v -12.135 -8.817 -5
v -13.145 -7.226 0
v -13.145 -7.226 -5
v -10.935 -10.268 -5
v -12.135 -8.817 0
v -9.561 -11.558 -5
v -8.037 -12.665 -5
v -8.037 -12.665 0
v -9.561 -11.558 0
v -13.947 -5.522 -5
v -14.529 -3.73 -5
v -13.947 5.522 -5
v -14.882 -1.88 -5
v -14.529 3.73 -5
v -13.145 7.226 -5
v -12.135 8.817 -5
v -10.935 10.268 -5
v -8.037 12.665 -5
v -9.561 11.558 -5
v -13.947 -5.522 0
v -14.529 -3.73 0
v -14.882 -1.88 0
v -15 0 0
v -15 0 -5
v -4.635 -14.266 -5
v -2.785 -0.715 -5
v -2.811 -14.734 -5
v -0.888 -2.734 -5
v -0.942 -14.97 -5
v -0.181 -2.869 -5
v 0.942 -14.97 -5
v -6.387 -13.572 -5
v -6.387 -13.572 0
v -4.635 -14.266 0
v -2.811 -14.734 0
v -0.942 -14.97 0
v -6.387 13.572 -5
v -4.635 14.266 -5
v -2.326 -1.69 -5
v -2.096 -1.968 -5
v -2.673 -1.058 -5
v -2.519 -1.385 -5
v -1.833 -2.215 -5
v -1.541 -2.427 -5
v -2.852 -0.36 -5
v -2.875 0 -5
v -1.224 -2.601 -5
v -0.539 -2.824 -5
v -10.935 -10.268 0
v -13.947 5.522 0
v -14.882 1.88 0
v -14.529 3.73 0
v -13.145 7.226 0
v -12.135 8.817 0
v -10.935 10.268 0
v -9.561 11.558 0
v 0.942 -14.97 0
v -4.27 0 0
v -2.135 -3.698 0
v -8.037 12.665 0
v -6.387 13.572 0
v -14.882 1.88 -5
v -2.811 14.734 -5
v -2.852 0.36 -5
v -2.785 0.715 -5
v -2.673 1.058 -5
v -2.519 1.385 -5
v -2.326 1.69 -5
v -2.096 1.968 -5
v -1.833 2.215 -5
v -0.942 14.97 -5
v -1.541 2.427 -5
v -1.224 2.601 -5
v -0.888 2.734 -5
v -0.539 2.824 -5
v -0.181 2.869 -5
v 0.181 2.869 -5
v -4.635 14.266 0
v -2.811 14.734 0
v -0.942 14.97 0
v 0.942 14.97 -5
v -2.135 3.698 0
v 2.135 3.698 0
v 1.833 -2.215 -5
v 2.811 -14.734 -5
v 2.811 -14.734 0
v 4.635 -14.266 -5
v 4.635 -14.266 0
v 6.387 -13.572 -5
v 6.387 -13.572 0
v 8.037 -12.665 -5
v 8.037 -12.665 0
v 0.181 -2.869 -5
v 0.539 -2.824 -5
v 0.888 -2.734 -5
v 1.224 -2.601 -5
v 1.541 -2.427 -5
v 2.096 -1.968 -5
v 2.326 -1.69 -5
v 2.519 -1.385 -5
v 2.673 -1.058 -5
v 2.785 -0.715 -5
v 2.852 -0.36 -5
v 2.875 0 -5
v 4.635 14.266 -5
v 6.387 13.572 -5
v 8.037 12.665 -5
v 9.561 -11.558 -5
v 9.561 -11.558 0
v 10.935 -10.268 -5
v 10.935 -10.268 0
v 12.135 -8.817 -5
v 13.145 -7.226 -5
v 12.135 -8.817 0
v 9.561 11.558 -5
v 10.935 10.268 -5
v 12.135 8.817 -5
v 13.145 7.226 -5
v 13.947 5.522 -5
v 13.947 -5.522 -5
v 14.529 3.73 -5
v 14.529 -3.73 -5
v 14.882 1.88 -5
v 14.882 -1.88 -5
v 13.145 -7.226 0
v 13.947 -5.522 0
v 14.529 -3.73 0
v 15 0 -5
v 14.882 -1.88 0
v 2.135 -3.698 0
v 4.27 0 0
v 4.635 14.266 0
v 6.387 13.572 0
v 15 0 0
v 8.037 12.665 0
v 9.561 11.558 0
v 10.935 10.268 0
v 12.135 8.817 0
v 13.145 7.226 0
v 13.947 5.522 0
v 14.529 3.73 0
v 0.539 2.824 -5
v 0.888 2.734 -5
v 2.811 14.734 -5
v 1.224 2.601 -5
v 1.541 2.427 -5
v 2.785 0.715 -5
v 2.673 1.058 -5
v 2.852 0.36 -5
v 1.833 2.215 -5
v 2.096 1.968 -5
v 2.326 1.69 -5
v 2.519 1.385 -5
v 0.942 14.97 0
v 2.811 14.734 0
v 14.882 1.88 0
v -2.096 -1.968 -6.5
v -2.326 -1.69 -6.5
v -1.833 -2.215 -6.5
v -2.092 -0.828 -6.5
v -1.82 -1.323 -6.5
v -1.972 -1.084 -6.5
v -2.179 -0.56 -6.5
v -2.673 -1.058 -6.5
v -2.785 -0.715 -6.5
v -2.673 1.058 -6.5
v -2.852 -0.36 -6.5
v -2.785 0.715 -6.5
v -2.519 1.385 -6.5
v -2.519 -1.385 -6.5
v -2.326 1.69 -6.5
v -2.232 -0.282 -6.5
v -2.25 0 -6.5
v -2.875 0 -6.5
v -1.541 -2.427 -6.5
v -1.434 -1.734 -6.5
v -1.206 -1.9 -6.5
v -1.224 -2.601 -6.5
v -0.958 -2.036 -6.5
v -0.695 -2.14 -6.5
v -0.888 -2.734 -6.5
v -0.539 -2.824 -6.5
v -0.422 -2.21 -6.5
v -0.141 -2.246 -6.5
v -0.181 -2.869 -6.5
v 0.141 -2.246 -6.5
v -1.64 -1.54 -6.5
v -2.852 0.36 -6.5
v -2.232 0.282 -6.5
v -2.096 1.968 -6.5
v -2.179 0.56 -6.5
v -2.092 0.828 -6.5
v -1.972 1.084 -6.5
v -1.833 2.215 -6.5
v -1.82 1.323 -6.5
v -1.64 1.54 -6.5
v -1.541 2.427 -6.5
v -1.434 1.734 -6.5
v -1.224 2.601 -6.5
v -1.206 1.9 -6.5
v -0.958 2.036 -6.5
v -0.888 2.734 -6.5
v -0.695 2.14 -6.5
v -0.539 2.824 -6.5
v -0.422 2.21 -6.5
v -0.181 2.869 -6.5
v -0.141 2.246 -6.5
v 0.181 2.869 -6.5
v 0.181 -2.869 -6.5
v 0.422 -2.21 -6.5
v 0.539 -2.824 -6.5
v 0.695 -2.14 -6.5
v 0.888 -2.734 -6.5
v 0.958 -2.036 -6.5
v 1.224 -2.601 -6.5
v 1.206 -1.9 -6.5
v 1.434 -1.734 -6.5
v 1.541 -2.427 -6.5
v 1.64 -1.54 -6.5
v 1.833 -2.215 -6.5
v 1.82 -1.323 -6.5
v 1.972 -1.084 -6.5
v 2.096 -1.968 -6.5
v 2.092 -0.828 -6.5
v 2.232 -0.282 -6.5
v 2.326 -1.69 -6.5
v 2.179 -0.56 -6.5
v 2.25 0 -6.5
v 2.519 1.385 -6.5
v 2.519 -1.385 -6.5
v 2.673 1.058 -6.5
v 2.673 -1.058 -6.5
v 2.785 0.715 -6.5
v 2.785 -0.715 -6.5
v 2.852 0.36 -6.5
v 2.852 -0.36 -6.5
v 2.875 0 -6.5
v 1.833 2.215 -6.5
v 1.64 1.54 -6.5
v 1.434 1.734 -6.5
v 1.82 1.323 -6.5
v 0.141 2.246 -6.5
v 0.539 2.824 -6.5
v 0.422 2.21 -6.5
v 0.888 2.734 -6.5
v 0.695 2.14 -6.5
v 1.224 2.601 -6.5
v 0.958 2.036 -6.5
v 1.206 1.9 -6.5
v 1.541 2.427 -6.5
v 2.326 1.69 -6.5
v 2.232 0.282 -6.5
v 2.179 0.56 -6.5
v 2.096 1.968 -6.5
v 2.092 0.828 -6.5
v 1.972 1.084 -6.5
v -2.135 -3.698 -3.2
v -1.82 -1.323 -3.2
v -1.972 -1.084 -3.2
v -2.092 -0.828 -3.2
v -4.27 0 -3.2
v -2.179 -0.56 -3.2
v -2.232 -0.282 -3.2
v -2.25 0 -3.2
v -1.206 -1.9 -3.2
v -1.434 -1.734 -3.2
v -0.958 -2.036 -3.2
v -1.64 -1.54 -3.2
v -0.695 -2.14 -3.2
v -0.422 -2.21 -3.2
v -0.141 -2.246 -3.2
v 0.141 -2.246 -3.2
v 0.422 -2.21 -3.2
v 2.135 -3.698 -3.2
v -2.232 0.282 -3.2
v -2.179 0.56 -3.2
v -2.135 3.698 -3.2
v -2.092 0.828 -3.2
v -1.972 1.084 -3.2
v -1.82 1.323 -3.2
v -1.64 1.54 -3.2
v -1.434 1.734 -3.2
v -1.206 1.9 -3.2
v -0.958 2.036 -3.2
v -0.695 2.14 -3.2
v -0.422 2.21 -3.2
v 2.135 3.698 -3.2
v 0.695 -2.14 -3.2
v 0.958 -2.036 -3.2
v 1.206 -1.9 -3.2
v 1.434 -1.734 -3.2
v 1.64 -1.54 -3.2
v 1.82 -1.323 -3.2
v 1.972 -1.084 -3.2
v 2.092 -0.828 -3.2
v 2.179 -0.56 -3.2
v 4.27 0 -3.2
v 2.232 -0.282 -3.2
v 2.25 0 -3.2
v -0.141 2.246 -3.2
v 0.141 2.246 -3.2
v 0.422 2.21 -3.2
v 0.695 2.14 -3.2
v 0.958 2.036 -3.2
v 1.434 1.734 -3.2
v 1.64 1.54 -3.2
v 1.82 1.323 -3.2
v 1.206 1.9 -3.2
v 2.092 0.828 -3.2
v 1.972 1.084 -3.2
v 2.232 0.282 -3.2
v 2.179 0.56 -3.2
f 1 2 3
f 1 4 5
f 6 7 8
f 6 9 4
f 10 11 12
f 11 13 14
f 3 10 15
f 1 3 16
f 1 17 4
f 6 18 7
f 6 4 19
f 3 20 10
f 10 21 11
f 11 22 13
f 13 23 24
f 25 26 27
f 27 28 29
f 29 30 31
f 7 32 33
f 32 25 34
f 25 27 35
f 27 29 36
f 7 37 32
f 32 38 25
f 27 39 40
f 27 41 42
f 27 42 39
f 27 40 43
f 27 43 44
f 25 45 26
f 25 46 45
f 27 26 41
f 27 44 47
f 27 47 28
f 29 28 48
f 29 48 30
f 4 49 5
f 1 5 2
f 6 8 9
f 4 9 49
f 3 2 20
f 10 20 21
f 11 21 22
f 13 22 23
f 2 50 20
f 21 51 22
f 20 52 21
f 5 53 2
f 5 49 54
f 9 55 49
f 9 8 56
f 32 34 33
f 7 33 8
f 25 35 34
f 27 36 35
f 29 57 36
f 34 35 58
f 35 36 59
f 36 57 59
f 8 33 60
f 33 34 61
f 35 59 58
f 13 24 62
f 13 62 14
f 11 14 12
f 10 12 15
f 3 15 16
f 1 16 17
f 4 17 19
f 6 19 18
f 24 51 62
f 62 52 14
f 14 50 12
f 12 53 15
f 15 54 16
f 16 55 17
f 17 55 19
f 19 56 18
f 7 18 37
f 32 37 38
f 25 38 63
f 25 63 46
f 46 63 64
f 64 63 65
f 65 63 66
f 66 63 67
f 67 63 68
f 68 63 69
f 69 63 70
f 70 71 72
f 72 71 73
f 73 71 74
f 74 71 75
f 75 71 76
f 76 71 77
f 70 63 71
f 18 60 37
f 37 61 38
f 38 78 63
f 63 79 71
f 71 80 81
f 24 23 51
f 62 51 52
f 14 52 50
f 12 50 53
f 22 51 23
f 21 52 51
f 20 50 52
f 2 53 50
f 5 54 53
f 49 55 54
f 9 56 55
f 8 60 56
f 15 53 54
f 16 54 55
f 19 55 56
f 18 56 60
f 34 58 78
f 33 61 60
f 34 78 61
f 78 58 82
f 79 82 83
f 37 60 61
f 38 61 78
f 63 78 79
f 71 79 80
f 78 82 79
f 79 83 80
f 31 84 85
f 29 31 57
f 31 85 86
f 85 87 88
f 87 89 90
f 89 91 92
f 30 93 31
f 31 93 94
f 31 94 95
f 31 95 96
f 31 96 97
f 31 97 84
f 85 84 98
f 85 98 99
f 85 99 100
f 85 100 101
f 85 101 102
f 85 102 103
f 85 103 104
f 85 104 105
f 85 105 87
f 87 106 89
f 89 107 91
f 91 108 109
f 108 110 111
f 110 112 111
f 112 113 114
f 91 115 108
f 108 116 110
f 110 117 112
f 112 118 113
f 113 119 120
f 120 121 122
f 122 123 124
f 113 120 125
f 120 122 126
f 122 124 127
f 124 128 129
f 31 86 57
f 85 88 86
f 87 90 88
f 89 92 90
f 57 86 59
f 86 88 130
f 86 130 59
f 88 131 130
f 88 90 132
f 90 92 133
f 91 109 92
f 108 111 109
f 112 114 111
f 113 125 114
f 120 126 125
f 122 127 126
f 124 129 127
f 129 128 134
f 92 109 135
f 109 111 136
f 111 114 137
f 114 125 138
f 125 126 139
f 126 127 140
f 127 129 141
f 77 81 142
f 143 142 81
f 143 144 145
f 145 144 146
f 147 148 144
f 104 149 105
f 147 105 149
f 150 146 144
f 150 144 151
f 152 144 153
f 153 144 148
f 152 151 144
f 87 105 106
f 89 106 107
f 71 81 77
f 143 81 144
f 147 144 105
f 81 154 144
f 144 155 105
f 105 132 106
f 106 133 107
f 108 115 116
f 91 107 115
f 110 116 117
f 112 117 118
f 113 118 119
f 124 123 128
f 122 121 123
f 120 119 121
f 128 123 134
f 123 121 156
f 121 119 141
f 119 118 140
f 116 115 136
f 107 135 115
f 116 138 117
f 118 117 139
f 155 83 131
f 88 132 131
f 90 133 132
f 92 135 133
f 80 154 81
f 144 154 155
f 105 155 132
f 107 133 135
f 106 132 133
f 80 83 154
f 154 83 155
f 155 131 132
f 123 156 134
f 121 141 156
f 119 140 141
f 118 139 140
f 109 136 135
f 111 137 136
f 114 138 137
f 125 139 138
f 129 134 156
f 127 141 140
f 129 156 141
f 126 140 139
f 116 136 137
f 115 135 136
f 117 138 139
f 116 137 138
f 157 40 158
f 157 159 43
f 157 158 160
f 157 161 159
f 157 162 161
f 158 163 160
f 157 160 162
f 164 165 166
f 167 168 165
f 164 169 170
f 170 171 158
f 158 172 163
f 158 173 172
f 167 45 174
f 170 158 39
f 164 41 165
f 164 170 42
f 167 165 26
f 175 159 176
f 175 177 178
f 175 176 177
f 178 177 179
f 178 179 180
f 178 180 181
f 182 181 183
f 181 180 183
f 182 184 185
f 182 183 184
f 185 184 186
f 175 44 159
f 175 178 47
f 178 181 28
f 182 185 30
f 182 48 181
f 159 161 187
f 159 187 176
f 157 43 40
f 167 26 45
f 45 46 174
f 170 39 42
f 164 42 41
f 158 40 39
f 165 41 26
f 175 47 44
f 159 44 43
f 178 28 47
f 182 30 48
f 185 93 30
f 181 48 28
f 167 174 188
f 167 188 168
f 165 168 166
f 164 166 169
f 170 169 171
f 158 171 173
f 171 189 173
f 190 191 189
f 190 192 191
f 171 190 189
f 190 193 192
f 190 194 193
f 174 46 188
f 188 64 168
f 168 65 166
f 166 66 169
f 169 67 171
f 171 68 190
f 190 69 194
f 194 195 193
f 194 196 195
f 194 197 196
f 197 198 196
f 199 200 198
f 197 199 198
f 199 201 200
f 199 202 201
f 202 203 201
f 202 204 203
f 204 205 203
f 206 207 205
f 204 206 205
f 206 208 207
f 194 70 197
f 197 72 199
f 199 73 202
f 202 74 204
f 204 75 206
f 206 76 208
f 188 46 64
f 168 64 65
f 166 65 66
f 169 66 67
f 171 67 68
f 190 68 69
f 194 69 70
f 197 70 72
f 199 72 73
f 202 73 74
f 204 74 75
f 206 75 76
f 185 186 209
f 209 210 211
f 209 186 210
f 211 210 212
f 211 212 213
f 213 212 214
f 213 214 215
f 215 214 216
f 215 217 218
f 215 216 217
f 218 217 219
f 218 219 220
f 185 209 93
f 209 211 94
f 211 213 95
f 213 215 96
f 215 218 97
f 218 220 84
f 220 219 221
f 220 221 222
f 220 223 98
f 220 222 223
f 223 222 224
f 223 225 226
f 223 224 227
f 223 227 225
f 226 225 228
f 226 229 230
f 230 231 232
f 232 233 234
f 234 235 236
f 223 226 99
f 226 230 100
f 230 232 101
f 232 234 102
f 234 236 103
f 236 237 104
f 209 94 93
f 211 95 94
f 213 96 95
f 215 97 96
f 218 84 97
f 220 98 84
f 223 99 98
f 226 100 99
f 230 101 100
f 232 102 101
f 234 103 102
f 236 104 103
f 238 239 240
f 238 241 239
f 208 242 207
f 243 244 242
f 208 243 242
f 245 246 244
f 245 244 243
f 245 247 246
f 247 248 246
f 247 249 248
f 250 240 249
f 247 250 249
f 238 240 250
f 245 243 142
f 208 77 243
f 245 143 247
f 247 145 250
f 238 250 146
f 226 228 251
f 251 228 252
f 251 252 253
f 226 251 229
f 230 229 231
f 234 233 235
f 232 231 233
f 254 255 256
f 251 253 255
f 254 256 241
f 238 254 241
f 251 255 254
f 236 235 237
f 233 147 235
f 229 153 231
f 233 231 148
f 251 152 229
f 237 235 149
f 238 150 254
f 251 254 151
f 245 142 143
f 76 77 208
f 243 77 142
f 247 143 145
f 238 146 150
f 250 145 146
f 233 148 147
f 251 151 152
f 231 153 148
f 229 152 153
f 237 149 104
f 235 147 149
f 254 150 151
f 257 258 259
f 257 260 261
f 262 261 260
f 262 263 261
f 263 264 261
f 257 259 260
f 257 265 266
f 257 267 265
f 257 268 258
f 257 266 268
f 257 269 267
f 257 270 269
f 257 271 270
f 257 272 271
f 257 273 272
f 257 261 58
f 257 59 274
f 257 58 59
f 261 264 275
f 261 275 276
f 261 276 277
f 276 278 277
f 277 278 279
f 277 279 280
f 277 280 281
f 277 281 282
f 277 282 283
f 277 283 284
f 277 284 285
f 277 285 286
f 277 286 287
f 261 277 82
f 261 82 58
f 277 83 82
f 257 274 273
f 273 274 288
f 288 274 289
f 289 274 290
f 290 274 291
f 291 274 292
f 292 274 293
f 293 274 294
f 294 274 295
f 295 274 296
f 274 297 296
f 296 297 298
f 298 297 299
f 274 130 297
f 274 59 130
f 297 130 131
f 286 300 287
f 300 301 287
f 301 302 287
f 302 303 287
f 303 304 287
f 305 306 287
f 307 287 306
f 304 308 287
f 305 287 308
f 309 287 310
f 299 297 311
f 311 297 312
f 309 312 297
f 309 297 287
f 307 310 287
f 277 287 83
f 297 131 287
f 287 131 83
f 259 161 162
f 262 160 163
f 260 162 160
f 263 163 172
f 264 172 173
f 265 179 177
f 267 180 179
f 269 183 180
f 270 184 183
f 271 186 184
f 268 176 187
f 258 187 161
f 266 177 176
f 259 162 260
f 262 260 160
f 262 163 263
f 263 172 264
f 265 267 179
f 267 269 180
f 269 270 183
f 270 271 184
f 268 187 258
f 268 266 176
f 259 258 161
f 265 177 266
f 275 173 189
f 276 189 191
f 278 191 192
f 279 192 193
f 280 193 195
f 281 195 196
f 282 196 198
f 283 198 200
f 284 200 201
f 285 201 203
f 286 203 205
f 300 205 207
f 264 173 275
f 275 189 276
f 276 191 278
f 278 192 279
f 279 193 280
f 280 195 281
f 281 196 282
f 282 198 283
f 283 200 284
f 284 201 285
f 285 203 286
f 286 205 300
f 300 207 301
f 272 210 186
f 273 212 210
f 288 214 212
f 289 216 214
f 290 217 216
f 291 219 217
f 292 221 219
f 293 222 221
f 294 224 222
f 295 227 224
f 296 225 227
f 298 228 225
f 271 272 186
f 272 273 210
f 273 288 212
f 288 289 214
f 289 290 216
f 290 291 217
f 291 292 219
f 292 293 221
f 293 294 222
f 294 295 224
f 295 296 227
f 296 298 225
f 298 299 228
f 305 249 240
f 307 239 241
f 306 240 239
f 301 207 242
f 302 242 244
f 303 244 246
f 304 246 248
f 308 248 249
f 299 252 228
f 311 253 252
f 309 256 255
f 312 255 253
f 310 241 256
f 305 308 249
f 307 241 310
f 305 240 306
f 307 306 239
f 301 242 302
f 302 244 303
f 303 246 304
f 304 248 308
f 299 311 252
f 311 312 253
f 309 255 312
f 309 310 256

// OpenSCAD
$fn = 50;

difference() {
	union() {
		translate(v = [0, 0, -5.0]) {
			cylinder(h = 5.0, r = 15.0);
		}
		#translate(v = [0, 0, -6.5]) {
			cylinder(h = 6.5, r = 2.875);
		}
	}
	union() {
		translate(v = [0, 0, 0]) {
			rotate(a = [0, 0, 0]) {
				difference() {
					union() {
						translate(v = [0, 0, -3.2]) {
							linear_extrude(height = 3.2) {
								polygon(points = [[4.2698, 0.0], [2.1349000000000005, 3.697755269078796], [-2.134899999999999, 3.6977552690787965], [-4.2698, 5.228996902999369e-16], [-2.134900000000002, -3.6977552690787956], [2.1348999999999974, -3.697755269078798]]);
							}
						}
					}
					union();
				}
			}
		}
		#translate(v = [0, 0, -100.0]) {
			cylinder(h = 200, r = 2.25);
		}
	}
}
